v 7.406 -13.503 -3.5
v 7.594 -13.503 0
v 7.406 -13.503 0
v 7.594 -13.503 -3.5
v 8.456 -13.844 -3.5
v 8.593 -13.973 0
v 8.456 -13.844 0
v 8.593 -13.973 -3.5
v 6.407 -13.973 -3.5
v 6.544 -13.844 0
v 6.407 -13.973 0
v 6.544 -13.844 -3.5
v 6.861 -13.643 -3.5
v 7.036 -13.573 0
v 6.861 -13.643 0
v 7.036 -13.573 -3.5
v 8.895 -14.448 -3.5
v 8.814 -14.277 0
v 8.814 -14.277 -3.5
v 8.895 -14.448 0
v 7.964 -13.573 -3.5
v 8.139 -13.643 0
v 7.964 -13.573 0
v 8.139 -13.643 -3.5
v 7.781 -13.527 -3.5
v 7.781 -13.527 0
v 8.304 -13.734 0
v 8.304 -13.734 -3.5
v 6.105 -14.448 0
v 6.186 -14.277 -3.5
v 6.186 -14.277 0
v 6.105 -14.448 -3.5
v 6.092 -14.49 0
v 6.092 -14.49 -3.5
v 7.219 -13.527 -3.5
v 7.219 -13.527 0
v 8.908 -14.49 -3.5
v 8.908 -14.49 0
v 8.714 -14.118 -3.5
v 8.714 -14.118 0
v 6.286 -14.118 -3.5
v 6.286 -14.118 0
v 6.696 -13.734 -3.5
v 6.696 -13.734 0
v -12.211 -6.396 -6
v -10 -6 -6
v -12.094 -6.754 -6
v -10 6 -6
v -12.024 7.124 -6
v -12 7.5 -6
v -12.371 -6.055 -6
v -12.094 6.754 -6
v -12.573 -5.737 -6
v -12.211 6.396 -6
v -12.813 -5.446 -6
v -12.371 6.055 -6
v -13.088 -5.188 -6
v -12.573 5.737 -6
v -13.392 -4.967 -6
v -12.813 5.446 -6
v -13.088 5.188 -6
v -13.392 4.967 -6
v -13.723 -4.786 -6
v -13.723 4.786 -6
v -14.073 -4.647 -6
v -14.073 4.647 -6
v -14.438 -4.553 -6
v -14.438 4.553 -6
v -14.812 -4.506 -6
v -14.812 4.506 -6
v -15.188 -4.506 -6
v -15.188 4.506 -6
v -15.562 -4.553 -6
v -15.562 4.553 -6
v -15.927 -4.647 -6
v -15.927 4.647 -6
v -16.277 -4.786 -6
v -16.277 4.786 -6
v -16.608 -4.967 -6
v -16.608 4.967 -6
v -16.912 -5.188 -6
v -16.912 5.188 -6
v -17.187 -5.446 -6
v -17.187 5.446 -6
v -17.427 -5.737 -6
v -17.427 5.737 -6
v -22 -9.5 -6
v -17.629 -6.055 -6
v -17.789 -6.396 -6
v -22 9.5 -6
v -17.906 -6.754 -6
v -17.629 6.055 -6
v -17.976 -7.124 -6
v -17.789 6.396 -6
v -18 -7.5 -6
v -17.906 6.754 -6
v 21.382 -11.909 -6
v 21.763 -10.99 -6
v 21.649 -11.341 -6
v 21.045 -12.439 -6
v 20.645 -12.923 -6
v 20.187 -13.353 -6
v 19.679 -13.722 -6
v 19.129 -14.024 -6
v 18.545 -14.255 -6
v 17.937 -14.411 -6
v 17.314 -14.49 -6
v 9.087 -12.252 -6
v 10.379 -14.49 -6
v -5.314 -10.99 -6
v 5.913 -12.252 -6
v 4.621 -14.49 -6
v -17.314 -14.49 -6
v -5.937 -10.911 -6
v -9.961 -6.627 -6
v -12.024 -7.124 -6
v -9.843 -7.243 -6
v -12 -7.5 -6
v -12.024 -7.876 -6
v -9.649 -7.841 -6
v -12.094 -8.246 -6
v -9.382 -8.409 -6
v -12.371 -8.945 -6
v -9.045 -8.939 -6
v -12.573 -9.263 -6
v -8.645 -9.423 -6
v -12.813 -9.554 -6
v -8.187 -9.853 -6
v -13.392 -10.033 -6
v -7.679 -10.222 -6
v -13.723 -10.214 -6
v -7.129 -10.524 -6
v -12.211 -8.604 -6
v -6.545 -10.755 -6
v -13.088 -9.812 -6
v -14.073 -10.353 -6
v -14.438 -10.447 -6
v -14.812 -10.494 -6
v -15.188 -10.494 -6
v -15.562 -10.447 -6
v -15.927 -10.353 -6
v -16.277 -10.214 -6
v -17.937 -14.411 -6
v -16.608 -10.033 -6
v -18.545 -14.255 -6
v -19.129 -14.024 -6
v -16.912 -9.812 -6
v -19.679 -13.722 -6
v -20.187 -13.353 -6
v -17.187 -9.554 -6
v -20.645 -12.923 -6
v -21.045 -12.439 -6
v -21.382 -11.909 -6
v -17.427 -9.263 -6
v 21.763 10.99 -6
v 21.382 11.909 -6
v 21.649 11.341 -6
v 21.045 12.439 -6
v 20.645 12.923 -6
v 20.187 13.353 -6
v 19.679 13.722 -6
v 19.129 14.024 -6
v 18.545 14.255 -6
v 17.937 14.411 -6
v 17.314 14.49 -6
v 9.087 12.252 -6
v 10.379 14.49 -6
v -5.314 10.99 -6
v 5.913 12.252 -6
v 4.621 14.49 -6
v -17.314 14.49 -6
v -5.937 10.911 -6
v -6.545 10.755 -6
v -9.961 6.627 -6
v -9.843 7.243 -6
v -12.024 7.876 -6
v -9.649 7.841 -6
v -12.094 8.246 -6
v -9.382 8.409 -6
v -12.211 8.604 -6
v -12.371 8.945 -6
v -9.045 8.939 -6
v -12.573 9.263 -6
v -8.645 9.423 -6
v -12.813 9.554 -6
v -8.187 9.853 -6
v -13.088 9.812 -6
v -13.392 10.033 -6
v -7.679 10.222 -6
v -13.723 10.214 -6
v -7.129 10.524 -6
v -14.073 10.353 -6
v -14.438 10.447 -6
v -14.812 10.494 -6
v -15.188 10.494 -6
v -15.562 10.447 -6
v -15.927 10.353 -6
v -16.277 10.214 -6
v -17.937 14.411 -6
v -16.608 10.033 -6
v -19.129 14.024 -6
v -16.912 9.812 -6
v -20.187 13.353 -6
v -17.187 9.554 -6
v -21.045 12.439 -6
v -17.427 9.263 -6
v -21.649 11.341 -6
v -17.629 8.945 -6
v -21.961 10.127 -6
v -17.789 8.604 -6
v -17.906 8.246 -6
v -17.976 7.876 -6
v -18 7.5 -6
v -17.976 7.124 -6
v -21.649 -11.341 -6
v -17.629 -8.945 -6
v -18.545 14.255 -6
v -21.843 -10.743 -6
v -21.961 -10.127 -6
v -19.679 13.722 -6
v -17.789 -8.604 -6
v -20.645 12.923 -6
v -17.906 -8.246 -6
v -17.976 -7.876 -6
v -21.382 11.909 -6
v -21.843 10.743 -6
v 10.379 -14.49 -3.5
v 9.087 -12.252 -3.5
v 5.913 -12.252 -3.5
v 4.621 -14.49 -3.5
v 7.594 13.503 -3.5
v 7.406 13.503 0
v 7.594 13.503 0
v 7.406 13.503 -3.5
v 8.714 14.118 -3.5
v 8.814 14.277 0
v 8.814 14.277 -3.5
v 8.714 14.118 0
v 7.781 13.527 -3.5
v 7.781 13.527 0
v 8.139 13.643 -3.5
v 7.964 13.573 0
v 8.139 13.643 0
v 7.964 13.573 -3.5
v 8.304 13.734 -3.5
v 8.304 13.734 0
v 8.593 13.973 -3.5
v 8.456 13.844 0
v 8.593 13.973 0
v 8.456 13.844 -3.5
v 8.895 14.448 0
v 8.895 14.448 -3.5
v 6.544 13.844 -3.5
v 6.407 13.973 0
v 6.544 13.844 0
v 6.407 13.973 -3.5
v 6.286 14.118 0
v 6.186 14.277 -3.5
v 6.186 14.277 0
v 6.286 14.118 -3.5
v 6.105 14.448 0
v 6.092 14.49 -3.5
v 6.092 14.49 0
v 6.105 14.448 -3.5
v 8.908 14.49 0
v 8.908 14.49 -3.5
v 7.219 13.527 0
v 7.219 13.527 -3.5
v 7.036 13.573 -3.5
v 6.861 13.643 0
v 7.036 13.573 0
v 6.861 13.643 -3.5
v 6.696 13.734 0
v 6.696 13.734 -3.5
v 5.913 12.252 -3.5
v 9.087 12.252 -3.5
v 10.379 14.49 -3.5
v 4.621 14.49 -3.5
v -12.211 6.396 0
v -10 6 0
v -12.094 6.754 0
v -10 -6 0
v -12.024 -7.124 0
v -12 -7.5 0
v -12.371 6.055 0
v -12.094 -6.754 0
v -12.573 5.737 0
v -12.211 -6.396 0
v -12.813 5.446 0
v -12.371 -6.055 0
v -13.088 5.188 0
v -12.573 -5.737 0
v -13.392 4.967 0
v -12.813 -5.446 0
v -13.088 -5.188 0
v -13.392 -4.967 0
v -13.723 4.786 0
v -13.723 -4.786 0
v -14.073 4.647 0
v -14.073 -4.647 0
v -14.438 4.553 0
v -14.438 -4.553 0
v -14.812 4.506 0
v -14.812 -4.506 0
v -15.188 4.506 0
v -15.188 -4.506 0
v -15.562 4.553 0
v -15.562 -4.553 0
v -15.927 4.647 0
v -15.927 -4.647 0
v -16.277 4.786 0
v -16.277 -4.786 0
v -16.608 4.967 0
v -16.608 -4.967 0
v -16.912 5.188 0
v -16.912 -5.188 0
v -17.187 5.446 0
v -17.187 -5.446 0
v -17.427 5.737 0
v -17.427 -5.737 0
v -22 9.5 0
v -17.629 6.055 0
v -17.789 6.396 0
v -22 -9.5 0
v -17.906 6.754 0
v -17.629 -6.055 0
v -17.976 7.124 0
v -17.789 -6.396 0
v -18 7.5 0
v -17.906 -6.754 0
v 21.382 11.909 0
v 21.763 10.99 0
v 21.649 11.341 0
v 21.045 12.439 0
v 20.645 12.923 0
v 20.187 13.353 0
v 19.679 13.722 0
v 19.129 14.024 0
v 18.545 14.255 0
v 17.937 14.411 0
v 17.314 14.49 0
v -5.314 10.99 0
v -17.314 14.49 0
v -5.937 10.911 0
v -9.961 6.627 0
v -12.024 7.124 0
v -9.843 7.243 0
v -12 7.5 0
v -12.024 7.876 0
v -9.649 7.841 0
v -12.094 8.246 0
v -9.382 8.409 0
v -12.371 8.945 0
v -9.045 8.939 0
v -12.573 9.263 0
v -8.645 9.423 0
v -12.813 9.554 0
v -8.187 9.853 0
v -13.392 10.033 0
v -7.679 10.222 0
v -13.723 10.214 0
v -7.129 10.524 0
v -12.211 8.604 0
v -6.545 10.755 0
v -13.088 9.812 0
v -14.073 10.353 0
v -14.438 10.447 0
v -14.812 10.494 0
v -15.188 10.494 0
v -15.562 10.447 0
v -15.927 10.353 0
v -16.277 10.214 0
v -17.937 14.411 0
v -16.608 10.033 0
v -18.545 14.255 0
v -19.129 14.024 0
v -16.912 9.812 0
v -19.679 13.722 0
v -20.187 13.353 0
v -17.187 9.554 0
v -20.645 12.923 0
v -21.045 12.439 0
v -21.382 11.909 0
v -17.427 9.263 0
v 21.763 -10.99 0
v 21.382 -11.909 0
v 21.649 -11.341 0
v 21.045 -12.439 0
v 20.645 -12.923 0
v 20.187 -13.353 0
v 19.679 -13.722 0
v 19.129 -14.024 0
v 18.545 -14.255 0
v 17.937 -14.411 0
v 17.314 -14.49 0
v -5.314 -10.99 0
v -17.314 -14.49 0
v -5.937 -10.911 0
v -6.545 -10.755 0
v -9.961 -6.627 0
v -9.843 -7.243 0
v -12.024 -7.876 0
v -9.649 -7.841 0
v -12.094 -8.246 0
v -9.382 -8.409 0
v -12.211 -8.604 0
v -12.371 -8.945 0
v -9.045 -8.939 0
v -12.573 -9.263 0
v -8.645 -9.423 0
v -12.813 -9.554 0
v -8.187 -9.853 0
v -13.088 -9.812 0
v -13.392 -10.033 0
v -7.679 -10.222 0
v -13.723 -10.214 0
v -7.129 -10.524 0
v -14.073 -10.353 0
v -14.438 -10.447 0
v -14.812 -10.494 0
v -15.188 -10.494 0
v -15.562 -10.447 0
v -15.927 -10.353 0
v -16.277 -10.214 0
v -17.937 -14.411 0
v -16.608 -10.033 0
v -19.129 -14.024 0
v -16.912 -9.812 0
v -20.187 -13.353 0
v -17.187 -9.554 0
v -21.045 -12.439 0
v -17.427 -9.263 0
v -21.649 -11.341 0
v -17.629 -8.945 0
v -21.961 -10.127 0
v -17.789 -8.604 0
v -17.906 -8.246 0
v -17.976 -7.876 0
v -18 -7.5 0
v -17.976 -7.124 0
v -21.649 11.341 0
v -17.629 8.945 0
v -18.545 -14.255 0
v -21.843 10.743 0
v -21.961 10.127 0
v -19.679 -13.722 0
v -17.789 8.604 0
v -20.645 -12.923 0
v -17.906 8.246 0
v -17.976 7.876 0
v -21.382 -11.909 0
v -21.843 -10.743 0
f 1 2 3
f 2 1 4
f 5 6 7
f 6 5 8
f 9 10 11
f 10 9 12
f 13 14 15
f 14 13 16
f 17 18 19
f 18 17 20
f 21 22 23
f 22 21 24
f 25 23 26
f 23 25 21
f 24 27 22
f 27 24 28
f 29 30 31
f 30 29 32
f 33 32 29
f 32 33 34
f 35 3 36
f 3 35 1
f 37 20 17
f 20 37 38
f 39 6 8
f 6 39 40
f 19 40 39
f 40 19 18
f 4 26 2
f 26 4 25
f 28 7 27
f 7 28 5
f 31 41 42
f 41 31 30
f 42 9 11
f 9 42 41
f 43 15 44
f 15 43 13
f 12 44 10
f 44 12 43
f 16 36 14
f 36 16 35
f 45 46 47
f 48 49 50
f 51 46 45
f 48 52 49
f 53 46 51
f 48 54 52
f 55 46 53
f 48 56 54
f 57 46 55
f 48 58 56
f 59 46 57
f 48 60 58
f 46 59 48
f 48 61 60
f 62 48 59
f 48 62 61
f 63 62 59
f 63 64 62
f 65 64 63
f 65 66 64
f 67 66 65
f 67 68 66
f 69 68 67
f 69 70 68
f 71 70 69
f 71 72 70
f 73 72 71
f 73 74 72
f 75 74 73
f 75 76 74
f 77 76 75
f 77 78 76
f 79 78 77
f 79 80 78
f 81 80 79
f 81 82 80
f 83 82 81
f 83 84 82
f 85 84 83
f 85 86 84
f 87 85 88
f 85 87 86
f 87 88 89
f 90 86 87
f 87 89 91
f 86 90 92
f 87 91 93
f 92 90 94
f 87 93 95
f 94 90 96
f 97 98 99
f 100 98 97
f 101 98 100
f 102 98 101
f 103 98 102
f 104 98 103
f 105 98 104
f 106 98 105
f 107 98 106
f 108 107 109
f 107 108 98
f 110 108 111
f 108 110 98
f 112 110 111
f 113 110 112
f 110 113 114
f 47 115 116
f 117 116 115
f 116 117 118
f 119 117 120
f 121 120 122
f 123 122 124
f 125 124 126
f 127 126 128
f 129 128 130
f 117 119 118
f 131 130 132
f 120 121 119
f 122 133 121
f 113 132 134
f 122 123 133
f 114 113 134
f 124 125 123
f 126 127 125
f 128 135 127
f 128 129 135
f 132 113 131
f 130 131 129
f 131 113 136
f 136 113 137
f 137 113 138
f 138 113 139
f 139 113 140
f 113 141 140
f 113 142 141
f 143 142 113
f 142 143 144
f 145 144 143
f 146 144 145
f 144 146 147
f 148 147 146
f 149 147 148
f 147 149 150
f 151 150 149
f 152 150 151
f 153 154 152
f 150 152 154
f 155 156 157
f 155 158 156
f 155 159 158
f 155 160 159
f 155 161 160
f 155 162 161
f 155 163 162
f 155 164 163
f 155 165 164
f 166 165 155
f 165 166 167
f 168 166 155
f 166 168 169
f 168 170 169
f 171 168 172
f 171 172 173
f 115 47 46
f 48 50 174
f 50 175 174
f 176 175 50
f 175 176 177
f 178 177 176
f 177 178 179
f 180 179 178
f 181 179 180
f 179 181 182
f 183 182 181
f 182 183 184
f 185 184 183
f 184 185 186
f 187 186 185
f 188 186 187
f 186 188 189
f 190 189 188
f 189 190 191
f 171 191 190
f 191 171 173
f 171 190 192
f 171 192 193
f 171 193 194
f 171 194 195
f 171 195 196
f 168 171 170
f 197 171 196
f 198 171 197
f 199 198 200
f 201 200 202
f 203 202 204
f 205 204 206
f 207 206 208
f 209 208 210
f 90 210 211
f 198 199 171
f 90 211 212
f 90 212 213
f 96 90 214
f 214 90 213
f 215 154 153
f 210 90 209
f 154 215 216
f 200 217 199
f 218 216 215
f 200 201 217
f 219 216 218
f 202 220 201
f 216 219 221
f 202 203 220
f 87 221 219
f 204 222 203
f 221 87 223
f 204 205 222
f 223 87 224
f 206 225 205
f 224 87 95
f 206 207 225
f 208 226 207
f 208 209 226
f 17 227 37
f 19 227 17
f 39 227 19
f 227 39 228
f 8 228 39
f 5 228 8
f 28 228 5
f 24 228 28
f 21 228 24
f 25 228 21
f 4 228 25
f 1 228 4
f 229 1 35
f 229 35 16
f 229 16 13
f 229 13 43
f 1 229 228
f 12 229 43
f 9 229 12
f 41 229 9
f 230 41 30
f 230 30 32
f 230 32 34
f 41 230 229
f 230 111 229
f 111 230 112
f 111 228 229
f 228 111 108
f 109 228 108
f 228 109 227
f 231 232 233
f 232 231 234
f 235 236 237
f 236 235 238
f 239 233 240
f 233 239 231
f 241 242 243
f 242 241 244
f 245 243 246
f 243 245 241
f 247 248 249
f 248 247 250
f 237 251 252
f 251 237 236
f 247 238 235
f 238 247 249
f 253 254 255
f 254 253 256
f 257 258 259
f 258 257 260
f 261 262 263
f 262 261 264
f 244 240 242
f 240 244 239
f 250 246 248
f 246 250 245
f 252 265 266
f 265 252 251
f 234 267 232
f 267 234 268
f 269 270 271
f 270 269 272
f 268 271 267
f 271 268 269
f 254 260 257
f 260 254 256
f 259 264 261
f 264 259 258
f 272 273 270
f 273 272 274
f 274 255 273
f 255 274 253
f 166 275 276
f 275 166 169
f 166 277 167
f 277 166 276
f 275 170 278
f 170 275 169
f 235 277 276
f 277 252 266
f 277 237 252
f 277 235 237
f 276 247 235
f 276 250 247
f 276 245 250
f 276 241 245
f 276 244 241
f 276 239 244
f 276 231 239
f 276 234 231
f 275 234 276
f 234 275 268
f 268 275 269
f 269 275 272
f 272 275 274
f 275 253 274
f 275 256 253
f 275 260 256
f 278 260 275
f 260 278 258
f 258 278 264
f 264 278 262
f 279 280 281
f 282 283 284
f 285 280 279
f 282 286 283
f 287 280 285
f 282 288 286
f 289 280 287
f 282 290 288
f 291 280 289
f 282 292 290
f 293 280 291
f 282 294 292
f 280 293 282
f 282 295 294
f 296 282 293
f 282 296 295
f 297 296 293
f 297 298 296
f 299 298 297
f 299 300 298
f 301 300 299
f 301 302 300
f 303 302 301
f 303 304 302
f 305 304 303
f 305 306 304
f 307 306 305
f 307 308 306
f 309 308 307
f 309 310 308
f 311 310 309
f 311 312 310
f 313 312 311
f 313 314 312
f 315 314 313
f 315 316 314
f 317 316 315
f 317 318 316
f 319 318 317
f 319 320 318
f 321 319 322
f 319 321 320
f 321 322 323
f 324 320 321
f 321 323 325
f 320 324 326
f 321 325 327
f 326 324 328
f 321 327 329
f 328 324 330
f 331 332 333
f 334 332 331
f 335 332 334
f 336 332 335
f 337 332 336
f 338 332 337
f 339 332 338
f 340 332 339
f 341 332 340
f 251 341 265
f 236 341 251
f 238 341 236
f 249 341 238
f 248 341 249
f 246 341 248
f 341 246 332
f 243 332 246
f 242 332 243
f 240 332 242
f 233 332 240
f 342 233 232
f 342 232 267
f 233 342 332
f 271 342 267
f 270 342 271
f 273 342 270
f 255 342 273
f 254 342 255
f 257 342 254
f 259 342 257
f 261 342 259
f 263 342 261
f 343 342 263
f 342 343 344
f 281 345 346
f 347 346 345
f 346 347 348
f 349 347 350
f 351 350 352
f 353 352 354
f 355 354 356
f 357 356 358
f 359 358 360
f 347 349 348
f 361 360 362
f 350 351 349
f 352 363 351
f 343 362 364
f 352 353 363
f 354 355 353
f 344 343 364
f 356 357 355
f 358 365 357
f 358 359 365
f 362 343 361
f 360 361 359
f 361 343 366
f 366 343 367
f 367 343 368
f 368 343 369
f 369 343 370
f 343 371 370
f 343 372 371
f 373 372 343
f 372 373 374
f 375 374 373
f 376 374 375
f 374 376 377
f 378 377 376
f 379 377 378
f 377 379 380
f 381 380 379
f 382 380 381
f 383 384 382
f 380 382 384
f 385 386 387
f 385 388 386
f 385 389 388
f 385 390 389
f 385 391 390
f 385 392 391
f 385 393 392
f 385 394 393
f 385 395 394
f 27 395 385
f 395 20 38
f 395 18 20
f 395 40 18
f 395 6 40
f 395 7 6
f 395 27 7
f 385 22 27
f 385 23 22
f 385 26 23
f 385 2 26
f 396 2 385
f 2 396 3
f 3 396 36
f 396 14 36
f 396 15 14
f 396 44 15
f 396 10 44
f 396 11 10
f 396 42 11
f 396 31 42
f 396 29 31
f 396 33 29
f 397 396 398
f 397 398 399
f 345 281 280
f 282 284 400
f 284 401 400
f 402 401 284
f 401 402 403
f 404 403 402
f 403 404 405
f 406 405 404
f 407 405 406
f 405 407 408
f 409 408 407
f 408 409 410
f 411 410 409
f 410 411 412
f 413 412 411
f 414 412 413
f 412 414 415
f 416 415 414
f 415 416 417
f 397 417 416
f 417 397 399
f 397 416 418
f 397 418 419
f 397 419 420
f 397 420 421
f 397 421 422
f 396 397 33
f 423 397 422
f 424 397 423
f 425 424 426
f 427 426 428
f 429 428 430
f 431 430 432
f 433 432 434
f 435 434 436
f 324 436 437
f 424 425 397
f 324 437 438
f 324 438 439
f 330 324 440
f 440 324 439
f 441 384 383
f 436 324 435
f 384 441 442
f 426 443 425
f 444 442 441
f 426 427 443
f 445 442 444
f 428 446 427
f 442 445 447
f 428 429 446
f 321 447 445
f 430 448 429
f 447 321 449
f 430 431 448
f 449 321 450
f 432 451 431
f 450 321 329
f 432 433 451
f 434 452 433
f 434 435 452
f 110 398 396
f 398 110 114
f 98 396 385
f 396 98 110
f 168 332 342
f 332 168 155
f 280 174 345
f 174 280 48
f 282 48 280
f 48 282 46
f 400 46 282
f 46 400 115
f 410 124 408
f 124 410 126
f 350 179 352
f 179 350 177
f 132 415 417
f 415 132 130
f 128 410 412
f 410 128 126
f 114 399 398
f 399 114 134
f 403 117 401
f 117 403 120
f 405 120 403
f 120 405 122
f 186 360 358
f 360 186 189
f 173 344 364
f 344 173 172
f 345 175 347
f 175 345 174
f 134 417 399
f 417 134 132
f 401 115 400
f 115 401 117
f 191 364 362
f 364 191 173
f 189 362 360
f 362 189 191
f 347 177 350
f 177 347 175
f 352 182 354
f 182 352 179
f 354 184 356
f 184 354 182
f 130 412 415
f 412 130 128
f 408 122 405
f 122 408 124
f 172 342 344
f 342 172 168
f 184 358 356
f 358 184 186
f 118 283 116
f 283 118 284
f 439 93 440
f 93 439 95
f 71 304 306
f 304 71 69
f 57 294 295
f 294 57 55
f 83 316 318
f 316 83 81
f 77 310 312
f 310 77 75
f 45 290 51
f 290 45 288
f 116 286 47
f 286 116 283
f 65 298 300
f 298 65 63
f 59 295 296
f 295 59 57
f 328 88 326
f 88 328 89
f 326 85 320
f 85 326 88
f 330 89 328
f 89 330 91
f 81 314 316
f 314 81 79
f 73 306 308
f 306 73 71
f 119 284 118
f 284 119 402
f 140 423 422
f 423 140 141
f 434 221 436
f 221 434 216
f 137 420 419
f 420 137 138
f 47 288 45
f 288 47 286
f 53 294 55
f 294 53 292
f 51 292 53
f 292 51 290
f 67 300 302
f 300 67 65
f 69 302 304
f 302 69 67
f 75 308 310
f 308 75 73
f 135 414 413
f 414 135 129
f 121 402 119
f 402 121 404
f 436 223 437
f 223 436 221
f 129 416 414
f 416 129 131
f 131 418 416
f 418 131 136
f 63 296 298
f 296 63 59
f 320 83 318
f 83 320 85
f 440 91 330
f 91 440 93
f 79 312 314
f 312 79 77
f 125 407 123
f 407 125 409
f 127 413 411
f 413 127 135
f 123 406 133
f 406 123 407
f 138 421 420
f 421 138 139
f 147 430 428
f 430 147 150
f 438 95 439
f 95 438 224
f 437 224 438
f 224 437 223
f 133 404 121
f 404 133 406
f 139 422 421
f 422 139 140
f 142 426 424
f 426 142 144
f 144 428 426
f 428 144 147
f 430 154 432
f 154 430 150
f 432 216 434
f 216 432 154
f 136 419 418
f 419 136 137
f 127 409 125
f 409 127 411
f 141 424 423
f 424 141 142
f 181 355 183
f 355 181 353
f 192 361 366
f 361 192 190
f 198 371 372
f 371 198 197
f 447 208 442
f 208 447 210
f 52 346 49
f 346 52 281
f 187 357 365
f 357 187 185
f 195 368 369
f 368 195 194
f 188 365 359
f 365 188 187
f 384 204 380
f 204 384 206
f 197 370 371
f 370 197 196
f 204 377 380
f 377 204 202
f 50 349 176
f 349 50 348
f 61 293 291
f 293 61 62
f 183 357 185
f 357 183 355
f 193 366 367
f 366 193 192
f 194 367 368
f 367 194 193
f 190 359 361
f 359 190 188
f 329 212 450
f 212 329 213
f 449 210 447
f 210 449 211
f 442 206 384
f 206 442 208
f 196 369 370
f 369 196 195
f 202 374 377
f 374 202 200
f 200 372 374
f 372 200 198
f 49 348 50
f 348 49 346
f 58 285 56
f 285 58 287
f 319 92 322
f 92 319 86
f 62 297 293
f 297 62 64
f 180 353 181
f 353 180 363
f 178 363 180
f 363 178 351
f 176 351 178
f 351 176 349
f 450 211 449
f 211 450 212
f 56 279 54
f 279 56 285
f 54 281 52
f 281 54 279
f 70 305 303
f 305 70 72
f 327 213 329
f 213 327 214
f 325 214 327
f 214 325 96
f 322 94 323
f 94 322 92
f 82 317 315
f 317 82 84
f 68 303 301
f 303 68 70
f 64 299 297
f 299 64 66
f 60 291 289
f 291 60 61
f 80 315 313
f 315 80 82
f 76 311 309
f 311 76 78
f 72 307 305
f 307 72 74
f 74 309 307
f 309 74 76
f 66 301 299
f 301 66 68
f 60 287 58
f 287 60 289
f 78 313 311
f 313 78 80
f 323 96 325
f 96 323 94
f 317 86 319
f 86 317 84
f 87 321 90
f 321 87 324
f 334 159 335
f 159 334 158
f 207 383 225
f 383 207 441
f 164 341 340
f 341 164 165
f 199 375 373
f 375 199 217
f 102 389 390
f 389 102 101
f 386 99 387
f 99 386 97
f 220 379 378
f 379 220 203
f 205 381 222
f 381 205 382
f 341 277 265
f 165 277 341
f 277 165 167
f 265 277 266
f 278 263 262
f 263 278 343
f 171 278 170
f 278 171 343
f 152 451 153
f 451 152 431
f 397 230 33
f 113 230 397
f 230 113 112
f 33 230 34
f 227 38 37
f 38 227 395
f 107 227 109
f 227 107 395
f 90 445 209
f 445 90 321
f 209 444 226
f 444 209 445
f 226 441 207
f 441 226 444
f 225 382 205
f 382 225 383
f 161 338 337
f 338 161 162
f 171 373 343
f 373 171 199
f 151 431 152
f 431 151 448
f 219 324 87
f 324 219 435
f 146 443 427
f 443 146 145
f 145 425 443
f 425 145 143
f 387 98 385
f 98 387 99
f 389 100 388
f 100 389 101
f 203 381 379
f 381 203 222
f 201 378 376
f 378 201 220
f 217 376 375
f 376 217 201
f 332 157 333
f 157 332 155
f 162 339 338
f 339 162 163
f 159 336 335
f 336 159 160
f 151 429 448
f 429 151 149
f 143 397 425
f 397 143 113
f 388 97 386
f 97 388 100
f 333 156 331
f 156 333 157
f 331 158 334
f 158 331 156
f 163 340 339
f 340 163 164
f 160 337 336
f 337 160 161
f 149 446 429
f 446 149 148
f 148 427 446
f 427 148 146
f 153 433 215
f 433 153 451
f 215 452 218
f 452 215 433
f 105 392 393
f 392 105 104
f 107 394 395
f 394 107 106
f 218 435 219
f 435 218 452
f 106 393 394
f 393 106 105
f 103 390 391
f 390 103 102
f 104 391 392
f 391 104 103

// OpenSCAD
$fn = 50;


difference() {
	union() {
		translate(v = [0, 0, -6]) {
			hull() {
				translate(v = [-17.0000000000, 9.5000000000, 0]) {
					cylinder(h = 6, r = 5);
				}
				translate(v = [17.0000000000, 9.5000000000, 0]) {
					cylinder(h = 6, r = 5);
				}
				translate(v = [-17.0000000000, -9.5000000000, 0]) {
					cylinder(h = 6, r = 5);
				}
				translate(v = [17.0000000000, -9.5000000000, 0]) {
					cylinder(h = 6, r = 5);
				}
			}
		}
	}
	union() {
		translate(v = [7.5000000000, -15, -6]) {
			rotate(a = [0, 0, 0]) {
				difference() {
					union() {
						translate(v = [0, 0, -50.0000000000]) {
							cylinder(h = 100, r = 1.5000000000);
						}
						translate(v = [0, 0, -50.0000000000]) {
							cylinder(h = 100, r = 1.5000000000);
						}
						linear_extrude(height = 2.5000000000) {
							polygon(points = [[3.1735000000, 0.0000000000], [1.5867500000, 2.7483316189], [-1.5867500000, 2.7483316189], [-3.1735000000, 0.0000000000], [-1.5867500000, -2.7483316189], [1.5867500000, -2.7483316189]]);
						}
						translate(v = [0, 0, -50.0000000000]) {
							cylinder(h = 100, r = 1.5000000000);
						}
					}
					union();
				}
			}
		}
		translate(v = [7.5000000000, 15, -6]) {
			rotate(a = [0, 0, 0]) {
				difference() {
					union() {
						translate(v = [0, 0, -50.0000000000]) {
							cylinder(h = 100, r = 1.5000000000);
						}
						translate(v = [0, 0, -50.0000000000]) {
							cylinder(h = 100, r = 1.5000000000);
						}
						linear_extrude(height = 2.5000000000) {
							polygon(points = [[3.1735000000, 0.0000000000], [1.5867500000, 2.7483316189], [-1.5867500000, 2.7483316189], [-3.1735000000, 0.0000000000], [-1.5867500000, -2.7483316189], [1.5867500000, -2.7483316189]]);
						}
						translate(v = [0, 0, -50.0000000000]) {
							cylinder(h = 100, r = 1.5000000000);
						}
					}
					union();
				}
			}
		}
		translate(v = [0, 0, -3]) {
			rotate(a = [0, 0, 180]) {
				difference() {
					union() {
						translate(v = [-10, 0, -3]) {
							#hull() {
								translate(v = [-15.0000000000, 6.0000000000, 0]) {
									cylinder(h = 6, r = 5);
								}
								translate(v = [15.0000000000, 6.0000000000, 0]) {
									cylinder(h = 6, r = 5);
								}
								translate(v = [-15.0000000000, -6.0000000000, 0]) {
									cylinder(h = 6, r = 5);
								}
								translate(v = [15.0000000000, -6.0000000000, 0]) {
									cylinder(h = 6, r = 5);
								}
							}
						}
					}
					union();
				}
			}
		}
		translate(v = [-15.0000000000, -7.5000000000, -50.0000000000]) {
			cylinder(h = 100, r = 3.0000000000);
		}
		translate(v = [-15.0000000000, 7.5000000000, -50.0000000000]) {
			cylinder(h = 100, r = 3.0000000000);
		}
		translate(v = [-15.0000000000, 7.5000000000, -50.0000000000]) {
			cylinder(h = 100, r = 3.0000000000);
		}
		translate(v = [0.0000000000, 7.5000000000, -50.0000000000]) {
			cylinder(h = 100, r = 3.0000000000);
		}
		translate(v = [15.0000000000, 7.5000000000, -50.0000000000]) {
			cylinder(h = 100, r = 3.0000000000);
		}
		translate(v = [-15.0000000000, -7.5000000000, -50.0000000000]) {
			cylinder(h = 100, r = 3.0000000000);
		}
		translate(v = [0.0000000000, -7.5000000000, -50.0000000000]) {
			cylinder(h = 100, r = 3.0000000000);
		}
		translate(v = [15.0000000000, -7.5000000000, -50.0000000000]) {
			cylinder(h = 100, r = 3.0000000000);
		}
	}
}
